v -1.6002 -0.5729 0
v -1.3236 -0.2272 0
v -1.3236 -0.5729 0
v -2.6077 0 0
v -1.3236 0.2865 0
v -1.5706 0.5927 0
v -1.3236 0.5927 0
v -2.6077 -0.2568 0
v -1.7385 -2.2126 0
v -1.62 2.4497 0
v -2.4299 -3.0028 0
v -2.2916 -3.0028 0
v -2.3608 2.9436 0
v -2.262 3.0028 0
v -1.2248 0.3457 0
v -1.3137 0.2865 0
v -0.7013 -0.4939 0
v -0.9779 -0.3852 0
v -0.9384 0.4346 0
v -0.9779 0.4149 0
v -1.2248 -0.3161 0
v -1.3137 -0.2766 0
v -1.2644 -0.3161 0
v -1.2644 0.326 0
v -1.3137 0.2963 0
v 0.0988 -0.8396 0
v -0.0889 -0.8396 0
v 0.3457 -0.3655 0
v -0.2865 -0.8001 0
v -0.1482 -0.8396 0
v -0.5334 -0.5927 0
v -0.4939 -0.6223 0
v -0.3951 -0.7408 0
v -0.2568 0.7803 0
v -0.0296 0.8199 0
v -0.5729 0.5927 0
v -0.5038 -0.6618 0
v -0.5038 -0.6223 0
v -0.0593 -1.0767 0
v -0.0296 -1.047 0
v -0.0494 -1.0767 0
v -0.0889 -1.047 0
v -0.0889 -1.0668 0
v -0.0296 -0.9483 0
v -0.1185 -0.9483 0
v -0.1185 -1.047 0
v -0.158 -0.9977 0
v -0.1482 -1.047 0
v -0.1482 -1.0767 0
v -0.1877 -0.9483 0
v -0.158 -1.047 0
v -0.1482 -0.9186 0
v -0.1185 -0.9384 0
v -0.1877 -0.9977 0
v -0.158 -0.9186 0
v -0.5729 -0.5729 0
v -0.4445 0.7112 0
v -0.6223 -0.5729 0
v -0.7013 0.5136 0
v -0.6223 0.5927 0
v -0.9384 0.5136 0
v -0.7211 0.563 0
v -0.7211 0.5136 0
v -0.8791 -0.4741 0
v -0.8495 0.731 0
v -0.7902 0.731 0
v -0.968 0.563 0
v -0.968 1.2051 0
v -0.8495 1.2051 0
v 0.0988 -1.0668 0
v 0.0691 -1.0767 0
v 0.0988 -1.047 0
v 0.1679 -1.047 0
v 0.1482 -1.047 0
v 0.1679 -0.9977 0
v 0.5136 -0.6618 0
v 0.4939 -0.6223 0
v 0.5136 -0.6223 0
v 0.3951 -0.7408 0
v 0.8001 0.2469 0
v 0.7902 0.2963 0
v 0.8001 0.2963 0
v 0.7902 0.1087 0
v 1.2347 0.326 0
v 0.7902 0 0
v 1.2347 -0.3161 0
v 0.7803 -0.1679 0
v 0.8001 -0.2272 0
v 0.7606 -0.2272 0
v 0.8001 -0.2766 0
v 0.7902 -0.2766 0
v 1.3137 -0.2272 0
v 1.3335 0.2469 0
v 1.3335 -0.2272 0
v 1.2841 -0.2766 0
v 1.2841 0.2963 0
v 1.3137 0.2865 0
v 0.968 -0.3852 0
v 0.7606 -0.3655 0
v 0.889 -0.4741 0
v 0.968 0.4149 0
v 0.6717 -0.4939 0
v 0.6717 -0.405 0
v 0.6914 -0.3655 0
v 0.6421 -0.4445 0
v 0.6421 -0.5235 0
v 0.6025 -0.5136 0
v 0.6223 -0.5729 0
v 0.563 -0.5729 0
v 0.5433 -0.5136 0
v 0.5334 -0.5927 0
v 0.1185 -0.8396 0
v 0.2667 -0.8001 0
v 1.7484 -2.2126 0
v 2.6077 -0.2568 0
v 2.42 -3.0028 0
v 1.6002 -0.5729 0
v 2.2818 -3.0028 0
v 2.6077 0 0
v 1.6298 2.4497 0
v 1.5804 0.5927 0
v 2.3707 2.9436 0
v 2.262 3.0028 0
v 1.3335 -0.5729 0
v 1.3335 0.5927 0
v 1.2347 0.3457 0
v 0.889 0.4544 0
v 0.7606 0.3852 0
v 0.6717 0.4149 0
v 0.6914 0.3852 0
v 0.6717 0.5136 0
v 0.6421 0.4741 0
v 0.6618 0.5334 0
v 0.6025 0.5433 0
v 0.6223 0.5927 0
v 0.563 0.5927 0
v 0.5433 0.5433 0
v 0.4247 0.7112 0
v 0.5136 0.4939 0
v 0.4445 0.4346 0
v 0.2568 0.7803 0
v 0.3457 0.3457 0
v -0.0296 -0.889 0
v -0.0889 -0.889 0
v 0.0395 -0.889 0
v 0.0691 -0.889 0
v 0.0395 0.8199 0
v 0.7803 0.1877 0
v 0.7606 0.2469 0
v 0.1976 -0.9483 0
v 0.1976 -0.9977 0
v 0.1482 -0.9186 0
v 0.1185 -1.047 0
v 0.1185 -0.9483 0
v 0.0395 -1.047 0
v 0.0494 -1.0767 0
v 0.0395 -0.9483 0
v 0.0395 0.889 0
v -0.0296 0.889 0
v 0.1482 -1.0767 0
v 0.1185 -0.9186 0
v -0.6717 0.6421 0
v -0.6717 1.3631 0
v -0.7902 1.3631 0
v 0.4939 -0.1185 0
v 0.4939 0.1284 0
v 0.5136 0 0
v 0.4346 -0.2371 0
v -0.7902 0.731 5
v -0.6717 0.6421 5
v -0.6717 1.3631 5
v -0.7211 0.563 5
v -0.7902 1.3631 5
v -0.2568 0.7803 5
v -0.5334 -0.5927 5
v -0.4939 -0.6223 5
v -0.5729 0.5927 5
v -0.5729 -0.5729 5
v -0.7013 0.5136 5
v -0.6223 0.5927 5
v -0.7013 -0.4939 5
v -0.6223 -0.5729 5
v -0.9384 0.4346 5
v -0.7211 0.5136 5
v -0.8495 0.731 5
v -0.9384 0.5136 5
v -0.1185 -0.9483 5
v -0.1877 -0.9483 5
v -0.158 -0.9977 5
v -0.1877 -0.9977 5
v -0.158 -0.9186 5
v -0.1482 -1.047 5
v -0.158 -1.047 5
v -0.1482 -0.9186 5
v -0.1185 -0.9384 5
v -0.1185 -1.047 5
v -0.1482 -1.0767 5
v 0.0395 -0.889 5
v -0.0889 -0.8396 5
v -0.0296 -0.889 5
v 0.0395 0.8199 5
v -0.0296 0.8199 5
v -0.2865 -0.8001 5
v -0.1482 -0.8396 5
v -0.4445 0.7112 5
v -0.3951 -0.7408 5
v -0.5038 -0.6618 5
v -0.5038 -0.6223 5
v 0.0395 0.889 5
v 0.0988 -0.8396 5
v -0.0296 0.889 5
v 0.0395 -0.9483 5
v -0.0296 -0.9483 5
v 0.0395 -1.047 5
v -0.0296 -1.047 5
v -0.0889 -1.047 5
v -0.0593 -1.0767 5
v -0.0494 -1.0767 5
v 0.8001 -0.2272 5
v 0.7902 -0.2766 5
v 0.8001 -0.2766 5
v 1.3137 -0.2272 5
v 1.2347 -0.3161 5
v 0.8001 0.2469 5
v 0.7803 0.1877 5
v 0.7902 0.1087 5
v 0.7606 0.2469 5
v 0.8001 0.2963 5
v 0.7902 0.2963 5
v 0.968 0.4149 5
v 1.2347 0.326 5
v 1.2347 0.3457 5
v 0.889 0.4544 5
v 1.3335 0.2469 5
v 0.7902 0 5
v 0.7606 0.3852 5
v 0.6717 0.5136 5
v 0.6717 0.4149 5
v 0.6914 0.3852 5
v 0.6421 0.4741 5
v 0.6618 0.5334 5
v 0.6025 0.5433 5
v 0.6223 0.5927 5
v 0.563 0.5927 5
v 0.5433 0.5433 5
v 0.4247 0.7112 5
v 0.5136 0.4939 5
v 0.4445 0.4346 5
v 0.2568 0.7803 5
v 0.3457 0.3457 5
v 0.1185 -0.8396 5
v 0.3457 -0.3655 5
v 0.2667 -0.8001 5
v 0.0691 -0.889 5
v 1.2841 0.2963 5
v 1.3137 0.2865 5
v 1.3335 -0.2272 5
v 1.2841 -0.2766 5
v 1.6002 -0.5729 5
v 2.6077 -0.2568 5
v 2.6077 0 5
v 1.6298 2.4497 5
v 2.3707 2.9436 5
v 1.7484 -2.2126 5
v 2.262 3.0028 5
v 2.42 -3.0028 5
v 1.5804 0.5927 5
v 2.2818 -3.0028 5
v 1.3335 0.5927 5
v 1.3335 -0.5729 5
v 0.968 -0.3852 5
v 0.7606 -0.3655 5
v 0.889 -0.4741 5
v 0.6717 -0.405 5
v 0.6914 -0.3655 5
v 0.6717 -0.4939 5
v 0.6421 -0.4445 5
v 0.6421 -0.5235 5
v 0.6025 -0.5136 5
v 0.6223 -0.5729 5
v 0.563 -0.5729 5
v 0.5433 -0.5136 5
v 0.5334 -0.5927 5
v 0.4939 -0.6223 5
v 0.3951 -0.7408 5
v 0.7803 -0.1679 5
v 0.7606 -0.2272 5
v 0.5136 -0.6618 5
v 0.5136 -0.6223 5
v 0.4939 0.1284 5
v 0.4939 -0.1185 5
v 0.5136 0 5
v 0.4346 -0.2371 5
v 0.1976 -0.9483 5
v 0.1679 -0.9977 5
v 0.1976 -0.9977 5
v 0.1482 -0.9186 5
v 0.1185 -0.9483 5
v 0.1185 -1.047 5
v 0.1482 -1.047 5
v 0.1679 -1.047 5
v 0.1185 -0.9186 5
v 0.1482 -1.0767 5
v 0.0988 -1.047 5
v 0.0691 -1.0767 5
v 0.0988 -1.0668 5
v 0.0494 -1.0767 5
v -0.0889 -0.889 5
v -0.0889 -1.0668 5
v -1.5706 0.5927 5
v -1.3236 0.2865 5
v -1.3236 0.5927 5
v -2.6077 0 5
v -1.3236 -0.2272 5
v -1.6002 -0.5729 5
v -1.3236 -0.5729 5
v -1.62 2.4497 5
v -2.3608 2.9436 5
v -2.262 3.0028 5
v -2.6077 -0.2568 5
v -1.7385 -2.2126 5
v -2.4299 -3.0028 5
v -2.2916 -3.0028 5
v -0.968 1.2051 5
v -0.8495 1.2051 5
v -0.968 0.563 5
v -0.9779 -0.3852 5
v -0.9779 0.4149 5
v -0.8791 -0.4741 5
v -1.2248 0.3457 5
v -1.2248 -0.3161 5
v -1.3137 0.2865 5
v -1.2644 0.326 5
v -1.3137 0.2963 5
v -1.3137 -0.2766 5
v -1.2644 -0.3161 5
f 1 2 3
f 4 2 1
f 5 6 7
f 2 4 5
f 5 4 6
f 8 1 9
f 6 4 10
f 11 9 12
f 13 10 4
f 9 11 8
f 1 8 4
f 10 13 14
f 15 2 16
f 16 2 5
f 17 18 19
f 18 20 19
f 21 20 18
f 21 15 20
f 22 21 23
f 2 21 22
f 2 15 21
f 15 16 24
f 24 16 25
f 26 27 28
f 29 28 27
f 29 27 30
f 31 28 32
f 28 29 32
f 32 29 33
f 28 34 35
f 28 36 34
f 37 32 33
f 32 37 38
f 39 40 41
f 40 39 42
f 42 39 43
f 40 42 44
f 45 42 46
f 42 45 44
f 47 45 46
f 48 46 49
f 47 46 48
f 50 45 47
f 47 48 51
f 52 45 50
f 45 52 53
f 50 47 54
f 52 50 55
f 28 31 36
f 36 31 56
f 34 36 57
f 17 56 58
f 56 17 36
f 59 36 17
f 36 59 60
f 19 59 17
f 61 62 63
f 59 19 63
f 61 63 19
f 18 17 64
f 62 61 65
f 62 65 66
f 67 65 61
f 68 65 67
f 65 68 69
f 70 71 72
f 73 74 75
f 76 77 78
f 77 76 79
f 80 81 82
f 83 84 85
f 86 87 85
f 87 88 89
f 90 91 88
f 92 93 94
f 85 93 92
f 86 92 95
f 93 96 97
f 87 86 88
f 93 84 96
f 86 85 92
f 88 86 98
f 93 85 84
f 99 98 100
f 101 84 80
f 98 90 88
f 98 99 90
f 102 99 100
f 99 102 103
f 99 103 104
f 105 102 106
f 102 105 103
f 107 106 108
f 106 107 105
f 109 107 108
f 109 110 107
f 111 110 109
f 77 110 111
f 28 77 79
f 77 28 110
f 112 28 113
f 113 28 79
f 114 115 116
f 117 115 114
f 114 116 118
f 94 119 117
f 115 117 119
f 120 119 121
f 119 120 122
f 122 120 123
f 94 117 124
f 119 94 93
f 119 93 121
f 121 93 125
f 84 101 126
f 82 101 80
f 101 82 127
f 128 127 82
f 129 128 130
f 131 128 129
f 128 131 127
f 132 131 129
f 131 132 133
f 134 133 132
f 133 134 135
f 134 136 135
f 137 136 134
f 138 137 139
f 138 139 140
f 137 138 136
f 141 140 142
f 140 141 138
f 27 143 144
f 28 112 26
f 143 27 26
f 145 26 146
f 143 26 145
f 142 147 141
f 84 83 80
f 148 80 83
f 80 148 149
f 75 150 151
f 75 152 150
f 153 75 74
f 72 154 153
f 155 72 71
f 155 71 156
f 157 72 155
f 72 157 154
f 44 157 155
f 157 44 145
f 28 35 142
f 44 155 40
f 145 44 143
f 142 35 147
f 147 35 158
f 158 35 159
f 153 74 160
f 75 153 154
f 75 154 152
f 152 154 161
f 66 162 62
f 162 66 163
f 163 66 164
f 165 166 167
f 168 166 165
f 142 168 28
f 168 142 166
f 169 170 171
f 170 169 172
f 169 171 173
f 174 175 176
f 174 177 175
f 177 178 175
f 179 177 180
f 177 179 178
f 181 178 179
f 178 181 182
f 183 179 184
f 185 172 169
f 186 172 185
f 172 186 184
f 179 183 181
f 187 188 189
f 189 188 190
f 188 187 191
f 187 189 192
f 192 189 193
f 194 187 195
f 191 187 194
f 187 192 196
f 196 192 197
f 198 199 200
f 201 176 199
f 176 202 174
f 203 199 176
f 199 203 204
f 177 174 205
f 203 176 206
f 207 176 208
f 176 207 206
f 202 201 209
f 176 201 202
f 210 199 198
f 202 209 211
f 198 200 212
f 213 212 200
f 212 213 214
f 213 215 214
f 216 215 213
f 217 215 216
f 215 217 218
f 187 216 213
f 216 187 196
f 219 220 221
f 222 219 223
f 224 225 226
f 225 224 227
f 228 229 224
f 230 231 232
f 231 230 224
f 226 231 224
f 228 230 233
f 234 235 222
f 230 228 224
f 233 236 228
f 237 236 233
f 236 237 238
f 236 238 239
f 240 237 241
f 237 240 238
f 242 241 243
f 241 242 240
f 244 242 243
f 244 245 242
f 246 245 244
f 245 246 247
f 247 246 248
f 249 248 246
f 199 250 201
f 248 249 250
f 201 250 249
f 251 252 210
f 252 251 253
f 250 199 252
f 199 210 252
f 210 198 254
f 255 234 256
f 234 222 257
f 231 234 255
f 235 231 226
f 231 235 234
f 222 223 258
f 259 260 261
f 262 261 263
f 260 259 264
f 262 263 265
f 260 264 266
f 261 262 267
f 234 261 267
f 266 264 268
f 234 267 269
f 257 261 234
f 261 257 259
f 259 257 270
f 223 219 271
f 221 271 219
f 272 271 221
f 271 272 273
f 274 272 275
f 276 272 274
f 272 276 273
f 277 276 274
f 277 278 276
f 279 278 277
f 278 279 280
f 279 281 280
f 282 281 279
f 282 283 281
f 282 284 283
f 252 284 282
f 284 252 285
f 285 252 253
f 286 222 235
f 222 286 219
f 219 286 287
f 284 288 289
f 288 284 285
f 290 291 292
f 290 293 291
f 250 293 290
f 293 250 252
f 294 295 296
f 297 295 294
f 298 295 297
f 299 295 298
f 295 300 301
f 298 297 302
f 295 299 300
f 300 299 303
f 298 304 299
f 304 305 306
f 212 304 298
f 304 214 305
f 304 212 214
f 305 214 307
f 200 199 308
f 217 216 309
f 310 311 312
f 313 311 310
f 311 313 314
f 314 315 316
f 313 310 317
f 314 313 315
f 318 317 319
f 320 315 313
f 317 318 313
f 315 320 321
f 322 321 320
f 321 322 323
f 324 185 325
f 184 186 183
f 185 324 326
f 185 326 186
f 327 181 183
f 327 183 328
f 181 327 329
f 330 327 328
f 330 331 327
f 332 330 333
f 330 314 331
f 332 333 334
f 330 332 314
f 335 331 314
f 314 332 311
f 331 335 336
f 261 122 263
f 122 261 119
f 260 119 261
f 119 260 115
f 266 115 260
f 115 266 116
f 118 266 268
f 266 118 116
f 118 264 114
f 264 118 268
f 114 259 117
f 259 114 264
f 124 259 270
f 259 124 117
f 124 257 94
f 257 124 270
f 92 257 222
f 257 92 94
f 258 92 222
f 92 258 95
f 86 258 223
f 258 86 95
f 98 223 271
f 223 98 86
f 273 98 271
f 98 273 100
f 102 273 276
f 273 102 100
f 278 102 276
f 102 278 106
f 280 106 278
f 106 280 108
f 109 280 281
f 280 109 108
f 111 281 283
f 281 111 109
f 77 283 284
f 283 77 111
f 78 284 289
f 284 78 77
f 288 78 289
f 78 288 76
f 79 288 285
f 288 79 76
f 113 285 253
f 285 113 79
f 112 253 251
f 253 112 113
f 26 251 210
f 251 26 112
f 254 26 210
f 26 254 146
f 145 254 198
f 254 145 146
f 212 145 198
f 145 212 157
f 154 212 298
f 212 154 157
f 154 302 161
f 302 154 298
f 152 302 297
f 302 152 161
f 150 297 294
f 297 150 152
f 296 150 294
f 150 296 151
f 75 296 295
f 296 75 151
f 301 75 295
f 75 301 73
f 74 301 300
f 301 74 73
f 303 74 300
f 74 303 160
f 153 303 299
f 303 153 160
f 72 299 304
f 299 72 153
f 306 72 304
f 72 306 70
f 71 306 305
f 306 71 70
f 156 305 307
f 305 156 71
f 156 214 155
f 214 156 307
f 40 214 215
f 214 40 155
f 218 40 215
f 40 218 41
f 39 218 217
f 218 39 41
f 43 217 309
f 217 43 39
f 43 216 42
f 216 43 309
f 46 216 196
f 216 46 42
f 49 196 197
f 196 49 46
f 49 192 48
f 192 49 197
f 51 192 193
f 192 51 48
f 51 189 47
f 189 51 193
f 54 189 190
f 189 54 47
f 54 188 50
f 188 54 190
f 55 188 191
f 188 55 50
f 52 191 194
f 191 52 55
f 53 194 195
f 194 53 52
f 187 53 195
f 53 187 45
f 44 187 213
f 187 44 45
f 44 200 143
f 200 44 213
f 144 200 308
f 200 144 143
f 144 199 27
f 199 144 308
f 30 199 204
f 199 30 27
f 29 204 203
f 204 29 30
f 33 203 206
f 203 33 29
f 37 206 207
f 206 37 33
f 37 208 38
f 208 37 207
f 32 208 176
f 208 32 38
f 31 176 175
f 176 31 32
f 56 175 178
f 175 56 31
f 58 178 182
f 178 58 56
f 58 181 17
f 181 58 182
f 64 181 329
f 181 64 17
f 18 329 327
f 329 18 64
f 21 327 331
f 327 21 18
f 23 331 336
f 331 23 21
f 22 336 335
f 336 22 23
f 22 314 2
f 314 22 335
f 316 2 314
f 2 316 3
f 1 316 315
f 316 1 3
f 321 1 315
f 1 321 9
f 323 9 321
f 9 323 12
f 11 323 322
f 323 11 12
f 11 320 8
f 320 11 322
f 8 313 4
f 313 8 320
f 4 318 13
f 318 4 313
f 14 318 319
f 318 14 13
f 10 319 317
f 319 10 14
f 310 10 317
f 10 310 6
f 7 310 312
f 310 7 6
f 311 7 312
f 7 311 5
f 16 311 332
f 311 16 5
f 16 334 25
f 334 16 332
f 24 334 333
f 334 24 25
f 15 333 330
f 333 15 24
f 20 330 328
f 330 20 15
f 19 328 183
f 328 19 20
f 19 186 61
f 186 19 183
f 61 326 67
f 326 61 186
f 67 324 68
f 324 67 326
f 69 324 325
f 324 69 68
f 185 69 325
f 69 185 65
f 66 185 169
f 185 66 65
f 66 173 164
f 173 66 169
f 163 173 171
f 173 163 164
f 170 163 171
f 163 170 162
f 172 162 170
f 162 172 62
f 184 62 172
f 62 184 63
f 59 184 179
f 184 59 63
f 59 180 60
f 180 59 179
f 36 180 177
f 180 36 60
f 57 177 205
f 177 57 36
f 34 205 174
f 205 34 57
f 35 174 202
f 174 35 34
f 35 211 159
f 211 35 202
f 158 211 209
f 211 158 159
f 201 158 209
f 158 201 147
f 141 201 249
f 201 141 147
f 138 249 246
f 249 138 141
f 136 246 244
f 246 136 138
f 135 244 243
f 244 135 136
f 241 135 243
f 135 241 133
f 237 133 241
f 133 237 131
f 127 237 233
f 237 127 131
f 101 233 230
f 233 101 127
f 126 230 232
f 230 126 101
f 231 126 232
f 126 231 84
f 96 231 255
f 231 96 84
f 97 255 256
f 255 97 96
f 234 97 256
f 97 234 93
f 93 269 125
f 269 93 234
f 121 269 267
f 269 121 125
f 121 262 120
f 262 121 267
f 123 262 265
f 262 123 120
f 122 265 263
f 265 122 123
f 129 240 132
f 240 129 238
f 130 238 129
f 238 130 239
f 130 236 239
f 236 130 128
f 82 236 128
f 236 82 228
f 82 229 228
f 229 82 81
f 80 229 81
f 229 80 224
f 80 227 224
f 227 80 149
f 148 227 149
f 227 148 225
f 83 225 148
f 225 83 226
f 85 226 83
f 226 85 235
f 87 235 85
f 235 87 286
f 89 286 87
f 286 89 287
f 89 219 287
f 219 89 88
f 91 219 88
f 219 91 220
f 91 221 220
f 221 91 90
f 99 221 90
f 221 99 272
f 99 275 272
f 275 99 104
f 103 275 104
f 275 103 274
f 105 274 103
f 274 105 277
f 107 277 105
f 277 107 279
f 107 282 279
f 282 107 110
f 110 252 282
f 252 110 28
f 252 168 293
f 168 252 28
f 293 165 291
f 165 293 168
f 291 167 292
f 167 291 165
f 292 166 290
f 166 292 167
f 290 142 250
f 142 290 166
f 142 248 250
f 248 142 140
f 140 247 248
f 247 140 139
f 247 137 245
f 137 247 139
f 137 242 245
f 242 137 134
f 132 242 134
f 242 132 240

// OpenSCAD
// Module names are of the form poly_<inkscape-path-id>().  As a result,
// you can associate a polygon in this OpenSCAD program with the corresponding
// SVG element in the Inkscape document by looking for the XML element with
// the attribute id="inkscape-path-id".

// fudge value is used to ensure that subtracted solids are a tad taller
// in the z dimension than the polygon being subtracted from.  This helps
// keep the resulting .stl file manifold.
fudge = 0.1;

module poly_path4355(h)
{
  scale([25.4/90, -25.4/90, 1]) union()
  {
    difference()
    {
       linear_extrude(height=h)
         polygon([[9.240000,0.000000],[9.240000,0.910000],[8.575000,10.640000],[8.085000,10.640000],[6.195000,7.840000],[5.670000,2.030000],[4.725000,2.030000],[4.725000,0.805000],[4.655000,0.805000],[4.550000,0.980000],[4.375000,1.120000],[3.430000,1.365000],[3.150000,1.680000],[2.380000,1.750000],[2.275000,1.855000],[2.205000,2.030000],[1.995000,2.030000],[1.890000,2.100000],[1.750000,2.205000],[1.820000,2.205000],[1.820000,2.345000],[1.400000,2.625000],[0.945000,2.835000],[0.420000,2.975000],[0.350000,2.975000],[0.245000,3.150000],[0.140000,3.150000],[0.140000,3.360000],[0.420000,3.360000],[0.420000,3.255000],[0.525000,3.255000],[0.700000,3.360000],[0.700000,3.535000],[0.595000,3.535000],[0.595000,3.710000],[0.525000,3.710000],[0.525000,3.815000],[0.420000,3.710000],[0.350000,3.710000],[0.350000,3.780000],[0.245000,3.815000],[0.175000,3.815000],[0.140000,3.710000],[-0.070000,3.710000],[-0.105000,3.710000],[-0.175000,3.815000],[-0.210000,3.815000],[-0.315000,3.780000],[-0.315000,3.710000],[-0.420000,3.710000],[-0.525000,3.815000],[-0.525000,3.710000],[-0.560000,3.710000],[-0.560000,3.535000],[-0.665000,3.535000],[-0.665000,3.360000],[-0.560000,3.255000],[-0.525000,3.255000],[-0.420000,3.325000],[-0.420000,3.360000],[-0.105000,3.360000],[-0.105000,3.150000],[-0.315000,3.150000],[-0.315000,2.975000],[-0.420000,2.975000],[-0.525000,2.975000],[-1.015000,2.835000],[-1.400000,2.625000],[-1.785000,2.345000],[-1.785000,2.205000],[-1.750000,2.205000],[-1.890000,2.100000],[-2.030000,2.030000],[-2.100000,2.030000],[-2.205000,2.030000],[-2.485000,1.750000],[-3.115000,1.680000],[-3.465000,1.365000],[-4.340000,1.120000],[-4.480000,1.120000],[-4.655000,0.980000],[-4.690000,0.805000],[-4.690000,2.030000],[-5.670000,2.030000],[-6.160000,7.840000],[-8.120000,10.640000],[-8.610000,10.640000],[-9.240000,0.910000],[-9.240000,0.000000],[-8.365000,-10.430000],[-8.015000,-10.640000],[-5.740000,-8.680000],[-5.565000,-2.100000],[-4.690000,-2.100000],[-4.690000,-0.875000],[-4.690000,-1.015000],[-4.655000,-1.015000],[-4.655000,-1.050000],[-4.480000,-1.155000],[-4.340000,-1.225000],[-3.465000,-1.470000],[-3.325000,-1.540000],[-3.325000,-1.820000],[-3.430000,-1.995000],[-3.430000,-4.270000],[-3.010000,-4.270000],[-3.010000,-2.590000],[-2.800000,-2.590000],[-2.800000,-4.830000],[-2.380000,-4.830000],[-2.380000,-2.275000],[-2.555000,-1.995000],[-2.555000,-1.820000],[-2.485000,-1.820000],[-2.205000,-2.100000],[-2.030000,-2.100000],[-1.575000,-2.520000],[-0.910000,-2.765000],[-0.105000,-2.905000],[-0.105000,-3.150000],[-0.070000,-3.150000],[0.140000,-3.150000],[0.140000,-2.905000],[0.910000,-2.765000],[1.505000,-2.520000],[1.995000,-2.100000],[2.205000,-2.100000],[2.275000,-1.995000],[2.345000,-1.890000],[2.380000,-1.820000],[3.150000,-1.610000],[3.430000,-1.470000],[4.375000,-1.225000],[4.375000,-1.155000],[4.550000,-1.050000],[4.655000,-1.015000],[4.725000,-0.875000],[4.725000,-2.100000],[5.600000,-2.100000],[5.775000,-8.680000],[8.015000,-10.640000],[8.400000,-10.430000],[9.240000,0.000000]]);
       translate([0, 0, -fudge])
         linear_extrude(height=h+2*fudge)
           polygon([[2.800000,-1.050000],[2.835000,-1.050000],[2.695000,-1.365000],[2.450000,-1.365000],[2.380000,-1.470000],[2.275000,-1.680000],[2.135000,-1.925000],[1.925000,-1.925000],[1.820000,-1.750000],[1.575000,-1.540000],[1.225000,-1.225000],[1.750000,-0.455000],[1.820000,0.000000],[1.750000,0.420000],[1.540000,0.840000],[1.225000,1.295000],[1.925000,1.820000],[2.135000,1.820000],[2.275000,1.575000],[2.380000,1.435000],[2.450000,1.295000],[2.695000,1.295000],[2.835000,0.980000],[2.800000,0.980000],[2.835000,0.805000],[2.695000,0.805000],[2.765000,0.595000],[2.800000,-0.000000],[2.800000,-0.385000],[2.765000,-0.665000],[2.695000,-0.875000],[2.835000,-0.875000],[2.800000,-1.050000]]);
    }
  }
}

poly_path4355(5);
